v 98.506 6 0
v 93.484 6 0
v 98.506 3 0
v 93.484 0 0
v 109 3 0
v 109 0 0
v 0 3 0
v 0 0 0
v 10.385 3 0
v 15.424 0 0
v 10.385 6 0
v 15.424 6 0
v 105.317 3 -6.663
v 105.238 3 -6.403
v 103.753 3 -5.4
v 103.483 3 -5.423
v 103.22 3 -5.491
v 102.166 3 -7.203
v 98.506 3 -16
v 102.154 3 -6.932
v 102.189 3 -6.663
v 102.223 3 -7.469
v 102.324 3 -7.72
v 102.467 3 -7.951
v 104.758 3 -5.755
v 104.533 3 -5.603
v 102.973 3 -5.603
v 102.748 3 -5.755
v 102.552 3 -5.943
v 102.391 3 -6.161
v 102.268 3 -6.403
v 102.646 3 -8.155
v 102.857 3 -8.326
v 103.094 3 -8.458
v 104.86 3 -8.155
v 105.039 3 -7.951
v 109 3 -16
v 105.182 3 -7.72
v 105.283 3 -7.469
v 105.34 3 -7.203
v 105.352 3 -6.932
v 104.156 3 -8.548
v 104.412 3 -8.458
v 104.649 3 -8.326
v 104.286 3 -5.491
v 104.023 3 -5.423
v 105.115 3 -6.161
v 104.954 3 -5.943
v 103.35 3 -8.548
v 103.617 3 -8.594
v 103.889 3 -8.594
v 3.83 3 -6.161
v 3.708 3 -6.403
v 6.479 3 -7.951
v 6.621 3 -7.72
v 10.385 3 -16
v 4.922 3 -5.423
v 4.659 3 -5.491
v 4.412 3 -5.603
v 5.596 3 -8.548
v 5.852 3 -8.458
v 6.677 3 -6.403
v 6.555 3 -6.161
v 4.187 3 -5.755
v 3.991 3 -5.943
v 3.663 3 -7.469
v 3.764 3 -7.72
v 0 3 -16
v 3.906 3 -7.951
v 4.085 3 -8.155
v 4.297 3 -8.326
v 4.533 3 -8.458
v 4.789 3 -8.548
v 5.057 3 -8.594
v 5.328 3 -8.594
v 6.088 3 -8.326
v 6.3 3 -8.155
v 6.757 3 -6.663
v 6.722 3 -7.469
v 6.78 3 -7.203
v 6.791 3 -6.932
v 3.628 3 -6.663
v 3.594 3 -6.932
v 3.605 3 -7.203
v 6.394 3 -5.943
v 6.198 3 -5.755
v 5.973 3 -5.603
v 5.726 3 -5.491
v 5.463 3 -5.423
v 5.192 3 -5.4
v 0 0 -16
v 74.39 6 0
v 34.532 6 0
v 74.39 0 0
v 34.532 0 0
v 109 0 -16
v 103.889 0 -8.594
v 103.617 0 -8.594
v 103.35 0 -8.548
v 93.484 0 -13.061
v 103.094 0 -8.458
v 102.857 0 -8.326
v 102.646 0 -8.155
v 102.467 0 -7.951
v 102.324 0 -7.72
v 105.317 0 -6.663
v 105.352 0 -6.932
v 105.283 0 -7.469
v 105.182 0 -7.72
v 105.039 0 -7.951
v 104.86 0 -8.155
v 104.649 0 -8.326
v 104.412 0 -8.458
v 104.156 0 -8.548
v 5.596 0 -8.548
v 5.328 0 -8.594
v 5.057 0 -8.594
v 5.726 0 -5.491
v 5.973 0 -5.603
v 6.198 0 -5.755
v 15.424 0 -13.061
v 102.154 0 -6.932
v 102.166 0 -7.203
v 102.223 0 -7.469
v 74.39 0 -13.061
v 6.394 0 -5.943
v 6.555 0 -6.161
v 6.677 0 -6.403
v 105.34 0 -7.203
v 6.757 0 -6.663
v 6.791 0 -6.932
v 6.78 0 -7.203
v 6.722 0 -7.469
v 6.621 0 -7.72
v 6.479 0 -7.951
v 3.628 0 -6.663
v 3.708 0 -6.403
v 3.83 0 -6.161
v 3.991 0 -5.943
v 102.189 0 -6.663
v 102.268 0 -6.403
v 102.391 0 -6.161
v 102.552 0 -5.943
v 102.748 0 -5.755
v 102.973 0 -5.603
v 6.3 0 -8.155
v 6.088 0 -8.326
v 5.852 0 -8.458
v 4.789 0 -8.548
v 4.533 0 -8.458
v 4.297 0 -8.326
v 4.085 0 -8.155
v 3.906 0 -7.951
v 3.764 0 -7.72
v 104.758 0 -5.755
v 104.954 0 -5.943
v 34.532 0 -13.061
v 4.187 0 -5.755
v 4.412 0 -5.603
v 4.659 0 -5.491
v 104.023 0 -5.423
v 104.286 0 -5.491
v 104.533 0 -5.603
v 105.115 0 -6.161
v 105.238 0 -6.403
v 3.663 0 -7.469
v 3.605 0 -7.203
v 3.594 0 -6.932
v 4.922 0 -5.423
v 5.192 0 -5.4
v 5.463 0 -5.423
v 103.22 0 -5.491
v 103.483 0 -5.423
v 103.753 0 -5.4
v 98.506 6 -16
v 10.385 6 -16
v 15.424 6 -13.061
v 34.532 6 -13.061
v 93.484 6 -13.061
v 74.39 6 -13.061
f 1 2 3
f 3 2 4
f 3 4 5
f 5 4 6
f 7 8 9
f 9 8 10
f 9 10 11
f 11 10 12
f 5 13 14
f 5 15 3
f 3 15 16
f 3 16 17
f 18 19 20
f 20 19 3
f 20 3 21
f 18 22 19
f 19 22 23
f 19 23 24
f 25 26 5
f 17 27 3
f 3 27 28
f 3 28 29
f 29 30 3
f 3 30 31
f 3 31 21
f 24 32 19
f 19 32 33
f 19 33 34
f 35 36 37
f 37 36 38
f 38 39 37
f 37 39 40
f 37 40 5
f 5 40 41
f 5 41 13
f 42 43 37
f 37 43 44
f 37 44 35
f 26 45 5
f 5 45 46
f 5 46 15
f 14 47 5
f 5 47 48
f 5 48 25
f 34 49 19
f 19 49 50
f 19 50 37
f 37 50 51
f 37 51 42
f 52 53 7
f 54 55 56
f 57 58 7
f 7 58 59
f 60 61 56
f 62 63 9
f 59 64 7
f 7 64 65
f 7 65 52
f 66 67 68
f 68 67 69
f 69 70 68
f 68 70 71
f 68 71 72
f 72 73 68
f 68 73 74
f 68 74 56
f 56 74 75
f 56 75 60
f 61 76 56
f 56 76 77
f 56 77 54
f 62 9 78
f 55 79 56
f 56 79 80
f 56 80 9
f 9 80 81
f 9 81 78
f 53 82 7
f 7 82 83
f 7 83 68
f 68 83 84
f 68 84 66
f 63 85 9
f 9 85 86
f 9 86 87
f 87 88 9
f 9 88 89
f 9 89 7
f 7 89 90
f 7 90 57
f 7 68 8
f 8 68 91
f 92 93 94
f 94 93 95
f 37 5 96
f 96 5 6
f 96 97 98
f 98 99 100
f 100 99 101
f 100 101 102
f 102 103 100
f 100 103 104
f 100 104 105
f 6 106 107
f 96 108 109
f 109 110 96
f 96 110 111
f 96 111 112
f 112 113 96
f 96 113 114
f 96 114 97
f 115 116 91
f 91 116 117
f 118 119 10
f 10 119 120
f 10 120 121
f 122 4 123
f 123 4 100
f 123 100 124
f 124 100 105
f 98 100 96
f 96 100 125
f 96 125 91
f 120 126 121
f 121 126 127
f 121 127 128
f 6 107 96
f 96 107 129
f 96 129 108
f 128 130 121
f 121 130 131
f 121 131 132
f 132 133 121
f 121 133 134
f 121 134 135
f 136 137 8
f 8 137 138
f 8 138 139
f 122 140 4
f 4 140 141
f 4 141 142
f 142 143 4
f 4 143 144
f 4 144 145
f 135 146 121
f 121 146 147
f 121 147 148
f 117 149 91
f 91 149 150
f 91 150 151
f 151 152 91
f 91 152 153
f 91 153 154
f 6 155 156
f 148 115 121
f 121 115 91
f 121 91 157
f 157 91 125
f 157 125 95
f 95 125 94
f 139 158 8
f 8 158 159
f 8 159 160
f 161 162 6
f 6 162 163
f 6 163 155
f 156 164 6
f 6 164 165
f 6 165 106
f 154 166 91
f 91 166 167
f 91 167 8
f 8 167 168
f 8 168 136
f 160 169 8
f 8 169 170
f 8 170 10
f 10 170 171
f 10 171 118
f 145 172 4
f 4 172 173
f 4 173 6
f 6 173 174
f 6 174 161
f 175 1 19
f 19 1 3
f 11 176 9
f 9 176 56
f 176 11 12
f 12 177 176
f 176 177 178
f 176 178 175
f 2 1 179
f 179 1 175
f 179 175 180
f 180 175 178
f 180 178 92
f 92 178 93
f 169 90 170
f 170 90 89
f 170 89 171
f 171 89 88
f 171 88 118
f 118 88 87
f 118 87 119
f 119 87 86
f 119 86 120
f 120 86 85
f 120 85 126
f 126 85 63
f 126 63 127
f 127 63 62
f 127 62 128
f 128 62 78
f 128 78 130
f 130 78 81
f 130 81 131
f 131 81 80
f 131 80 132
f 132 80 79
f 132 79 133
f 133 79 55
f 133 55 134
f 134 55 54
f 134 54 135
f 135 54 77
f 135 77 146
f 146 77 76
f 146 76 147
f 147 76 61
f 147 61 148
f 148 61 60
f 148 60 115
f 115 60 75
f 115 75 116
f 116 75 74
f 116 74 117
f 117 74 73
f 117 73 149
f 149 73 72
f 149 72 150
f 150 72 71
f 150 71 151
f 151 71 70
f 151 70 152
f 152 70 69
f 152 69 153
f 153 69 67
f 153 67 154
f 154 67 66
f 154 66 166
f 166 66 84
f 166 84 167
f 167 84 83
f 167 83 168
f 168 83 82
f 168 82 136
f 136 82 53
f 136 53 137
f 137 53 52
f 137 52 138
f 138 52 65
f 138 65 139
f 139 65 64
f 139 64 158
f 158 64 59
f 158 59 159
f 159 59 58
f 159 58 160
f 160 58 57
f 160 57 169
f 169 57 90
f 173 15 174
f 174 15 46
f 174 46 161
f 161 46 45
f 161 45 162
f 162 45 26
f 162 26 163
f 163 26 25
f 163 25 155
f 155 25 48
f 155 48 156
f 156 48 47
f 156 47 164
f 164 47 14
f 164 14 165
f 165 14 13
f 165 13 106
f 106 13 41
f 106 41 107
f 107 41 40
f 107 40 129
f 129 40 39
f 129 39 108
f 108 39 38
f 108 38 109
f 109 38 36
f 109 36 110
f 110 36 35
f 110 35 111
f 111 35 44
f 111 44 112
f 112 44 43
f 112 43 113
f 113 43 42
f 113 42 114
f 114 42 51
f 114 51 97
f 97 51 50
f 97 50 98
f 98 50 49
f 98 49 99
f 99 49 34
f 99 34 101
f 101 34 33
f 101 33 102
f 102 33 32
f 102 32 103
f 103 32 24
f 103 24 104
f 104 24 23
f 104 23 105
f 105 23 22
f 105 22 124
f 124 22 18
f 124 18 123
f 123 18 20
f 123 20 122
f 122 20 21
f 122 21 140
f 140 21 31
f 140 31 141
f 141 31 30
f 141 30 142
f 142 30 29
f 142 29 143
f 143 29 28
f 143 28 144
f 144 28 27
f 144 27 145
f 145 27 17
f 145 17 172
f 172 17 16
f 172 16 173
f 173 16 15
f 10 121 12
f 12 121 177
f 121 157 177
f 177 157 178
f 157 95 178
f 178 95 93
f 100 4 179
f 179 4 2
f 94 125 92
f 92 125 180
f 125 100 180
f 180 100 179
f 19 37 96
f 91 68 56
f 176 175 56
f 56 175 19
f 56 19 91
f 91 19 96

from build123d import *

# Parameters (mm, degrees)
SKETCH1_W           = 109
SKETCH1_H           = 14
BOSS_EXTRUDE1_DEPTH = 3
SKETCH2_W           = 88.121085129
SKETCH2_H           = 14
BOSS_EXTRUDE2_DEPTH = 3
SKETCH3_R           = 1.6
CUT_EXTRUDE1_DEPTH  = 3
SKETCH4_W           = 19.094363251
SKETCH4_H           = 13.060900744
SKETCH4_W_2         = 19.108315111
CUT_EXTRUDE2_DEPTH  = 6
BOSS_EXTRUDE3_DEPTH = 2


with BuildPart() as part:
    # Sketch1 → Boss-Extrude1 (new body)
    with BuildSketch(Plane(origin=(0, 0, 0), x_dir=(1, 0, 0), z_dir=(0, 1, 0))):
        with Locations((54.5, 7)):
            Rectangle(SKETCH1_W, SKETCH1_H)
    extrude(amount=BOSS_EXTRUDE1_DEPTH)

    # Sketch2 → Boss-Extrude2 (add)
    with BuildSketch(Plane(origin=(0, 3, 0), x_dir=(1, 0, 0), z_dir=(0, 1, 0))):
        with Locations((54.44553703, 7)):
            Rectangle(SKETCH2_W, SKETCH2_H)
    extrude(amount=BOSS_EXTRUDE2_DEPTH)

    # Sketch3 → Cut-Extrude1 (cut)
    with BuildSketch(Plane(origin=(0, 3, 0), x_dir=(1, 0, 0), z_dir=(0, 1, 0))):
        with Locations((5.192497233, 7)):
            Circle(SKETCH3_R)
        with Locations((103.753039797, 7)):
            Circle(SKETCH3_R)
    extrude(amount=-CUT_EXTRUDE1_DEPTH, mode=Mode.SUBTRACT)

    # Sketch4 → Cut-Extrude2 (cut)
    with BuildSketch(Plane(origin=(0, 6, 0), x_dir=(1, 0, 0), z_dir=(0, 1, 0))):
        with Locations((83.937166007, 6.530450372)):
            Rectangle(SKETCH4_W, SKETCH4_H)
        with Locations((24.977978122, 6.530450372)):
            Rectangle(SKETCH4_W_2, SKETCH4_H)
    extrude(amount=-CUT_EXTRUDE2_DEPTH, mode=Mode.SUBTRACT)

    # Sketch5 → Boss-Extrude3 (add)
    with BuildSketch(Plane(origin=(0, 0, -14), x_dir=(-1, 0, 0), z_dir=(0, 0, -1))):
        Polygon((0, 0), (0, 3), (-10.384994466, 3), (-10.384994466, 6), (-98.506079595, 6), (-98.506079595, 3), (-109, 3), (-109, 0), align=None)
    extrude(amount=BOSS_EXTRUDE3_DEPTH)


solid = part.part
